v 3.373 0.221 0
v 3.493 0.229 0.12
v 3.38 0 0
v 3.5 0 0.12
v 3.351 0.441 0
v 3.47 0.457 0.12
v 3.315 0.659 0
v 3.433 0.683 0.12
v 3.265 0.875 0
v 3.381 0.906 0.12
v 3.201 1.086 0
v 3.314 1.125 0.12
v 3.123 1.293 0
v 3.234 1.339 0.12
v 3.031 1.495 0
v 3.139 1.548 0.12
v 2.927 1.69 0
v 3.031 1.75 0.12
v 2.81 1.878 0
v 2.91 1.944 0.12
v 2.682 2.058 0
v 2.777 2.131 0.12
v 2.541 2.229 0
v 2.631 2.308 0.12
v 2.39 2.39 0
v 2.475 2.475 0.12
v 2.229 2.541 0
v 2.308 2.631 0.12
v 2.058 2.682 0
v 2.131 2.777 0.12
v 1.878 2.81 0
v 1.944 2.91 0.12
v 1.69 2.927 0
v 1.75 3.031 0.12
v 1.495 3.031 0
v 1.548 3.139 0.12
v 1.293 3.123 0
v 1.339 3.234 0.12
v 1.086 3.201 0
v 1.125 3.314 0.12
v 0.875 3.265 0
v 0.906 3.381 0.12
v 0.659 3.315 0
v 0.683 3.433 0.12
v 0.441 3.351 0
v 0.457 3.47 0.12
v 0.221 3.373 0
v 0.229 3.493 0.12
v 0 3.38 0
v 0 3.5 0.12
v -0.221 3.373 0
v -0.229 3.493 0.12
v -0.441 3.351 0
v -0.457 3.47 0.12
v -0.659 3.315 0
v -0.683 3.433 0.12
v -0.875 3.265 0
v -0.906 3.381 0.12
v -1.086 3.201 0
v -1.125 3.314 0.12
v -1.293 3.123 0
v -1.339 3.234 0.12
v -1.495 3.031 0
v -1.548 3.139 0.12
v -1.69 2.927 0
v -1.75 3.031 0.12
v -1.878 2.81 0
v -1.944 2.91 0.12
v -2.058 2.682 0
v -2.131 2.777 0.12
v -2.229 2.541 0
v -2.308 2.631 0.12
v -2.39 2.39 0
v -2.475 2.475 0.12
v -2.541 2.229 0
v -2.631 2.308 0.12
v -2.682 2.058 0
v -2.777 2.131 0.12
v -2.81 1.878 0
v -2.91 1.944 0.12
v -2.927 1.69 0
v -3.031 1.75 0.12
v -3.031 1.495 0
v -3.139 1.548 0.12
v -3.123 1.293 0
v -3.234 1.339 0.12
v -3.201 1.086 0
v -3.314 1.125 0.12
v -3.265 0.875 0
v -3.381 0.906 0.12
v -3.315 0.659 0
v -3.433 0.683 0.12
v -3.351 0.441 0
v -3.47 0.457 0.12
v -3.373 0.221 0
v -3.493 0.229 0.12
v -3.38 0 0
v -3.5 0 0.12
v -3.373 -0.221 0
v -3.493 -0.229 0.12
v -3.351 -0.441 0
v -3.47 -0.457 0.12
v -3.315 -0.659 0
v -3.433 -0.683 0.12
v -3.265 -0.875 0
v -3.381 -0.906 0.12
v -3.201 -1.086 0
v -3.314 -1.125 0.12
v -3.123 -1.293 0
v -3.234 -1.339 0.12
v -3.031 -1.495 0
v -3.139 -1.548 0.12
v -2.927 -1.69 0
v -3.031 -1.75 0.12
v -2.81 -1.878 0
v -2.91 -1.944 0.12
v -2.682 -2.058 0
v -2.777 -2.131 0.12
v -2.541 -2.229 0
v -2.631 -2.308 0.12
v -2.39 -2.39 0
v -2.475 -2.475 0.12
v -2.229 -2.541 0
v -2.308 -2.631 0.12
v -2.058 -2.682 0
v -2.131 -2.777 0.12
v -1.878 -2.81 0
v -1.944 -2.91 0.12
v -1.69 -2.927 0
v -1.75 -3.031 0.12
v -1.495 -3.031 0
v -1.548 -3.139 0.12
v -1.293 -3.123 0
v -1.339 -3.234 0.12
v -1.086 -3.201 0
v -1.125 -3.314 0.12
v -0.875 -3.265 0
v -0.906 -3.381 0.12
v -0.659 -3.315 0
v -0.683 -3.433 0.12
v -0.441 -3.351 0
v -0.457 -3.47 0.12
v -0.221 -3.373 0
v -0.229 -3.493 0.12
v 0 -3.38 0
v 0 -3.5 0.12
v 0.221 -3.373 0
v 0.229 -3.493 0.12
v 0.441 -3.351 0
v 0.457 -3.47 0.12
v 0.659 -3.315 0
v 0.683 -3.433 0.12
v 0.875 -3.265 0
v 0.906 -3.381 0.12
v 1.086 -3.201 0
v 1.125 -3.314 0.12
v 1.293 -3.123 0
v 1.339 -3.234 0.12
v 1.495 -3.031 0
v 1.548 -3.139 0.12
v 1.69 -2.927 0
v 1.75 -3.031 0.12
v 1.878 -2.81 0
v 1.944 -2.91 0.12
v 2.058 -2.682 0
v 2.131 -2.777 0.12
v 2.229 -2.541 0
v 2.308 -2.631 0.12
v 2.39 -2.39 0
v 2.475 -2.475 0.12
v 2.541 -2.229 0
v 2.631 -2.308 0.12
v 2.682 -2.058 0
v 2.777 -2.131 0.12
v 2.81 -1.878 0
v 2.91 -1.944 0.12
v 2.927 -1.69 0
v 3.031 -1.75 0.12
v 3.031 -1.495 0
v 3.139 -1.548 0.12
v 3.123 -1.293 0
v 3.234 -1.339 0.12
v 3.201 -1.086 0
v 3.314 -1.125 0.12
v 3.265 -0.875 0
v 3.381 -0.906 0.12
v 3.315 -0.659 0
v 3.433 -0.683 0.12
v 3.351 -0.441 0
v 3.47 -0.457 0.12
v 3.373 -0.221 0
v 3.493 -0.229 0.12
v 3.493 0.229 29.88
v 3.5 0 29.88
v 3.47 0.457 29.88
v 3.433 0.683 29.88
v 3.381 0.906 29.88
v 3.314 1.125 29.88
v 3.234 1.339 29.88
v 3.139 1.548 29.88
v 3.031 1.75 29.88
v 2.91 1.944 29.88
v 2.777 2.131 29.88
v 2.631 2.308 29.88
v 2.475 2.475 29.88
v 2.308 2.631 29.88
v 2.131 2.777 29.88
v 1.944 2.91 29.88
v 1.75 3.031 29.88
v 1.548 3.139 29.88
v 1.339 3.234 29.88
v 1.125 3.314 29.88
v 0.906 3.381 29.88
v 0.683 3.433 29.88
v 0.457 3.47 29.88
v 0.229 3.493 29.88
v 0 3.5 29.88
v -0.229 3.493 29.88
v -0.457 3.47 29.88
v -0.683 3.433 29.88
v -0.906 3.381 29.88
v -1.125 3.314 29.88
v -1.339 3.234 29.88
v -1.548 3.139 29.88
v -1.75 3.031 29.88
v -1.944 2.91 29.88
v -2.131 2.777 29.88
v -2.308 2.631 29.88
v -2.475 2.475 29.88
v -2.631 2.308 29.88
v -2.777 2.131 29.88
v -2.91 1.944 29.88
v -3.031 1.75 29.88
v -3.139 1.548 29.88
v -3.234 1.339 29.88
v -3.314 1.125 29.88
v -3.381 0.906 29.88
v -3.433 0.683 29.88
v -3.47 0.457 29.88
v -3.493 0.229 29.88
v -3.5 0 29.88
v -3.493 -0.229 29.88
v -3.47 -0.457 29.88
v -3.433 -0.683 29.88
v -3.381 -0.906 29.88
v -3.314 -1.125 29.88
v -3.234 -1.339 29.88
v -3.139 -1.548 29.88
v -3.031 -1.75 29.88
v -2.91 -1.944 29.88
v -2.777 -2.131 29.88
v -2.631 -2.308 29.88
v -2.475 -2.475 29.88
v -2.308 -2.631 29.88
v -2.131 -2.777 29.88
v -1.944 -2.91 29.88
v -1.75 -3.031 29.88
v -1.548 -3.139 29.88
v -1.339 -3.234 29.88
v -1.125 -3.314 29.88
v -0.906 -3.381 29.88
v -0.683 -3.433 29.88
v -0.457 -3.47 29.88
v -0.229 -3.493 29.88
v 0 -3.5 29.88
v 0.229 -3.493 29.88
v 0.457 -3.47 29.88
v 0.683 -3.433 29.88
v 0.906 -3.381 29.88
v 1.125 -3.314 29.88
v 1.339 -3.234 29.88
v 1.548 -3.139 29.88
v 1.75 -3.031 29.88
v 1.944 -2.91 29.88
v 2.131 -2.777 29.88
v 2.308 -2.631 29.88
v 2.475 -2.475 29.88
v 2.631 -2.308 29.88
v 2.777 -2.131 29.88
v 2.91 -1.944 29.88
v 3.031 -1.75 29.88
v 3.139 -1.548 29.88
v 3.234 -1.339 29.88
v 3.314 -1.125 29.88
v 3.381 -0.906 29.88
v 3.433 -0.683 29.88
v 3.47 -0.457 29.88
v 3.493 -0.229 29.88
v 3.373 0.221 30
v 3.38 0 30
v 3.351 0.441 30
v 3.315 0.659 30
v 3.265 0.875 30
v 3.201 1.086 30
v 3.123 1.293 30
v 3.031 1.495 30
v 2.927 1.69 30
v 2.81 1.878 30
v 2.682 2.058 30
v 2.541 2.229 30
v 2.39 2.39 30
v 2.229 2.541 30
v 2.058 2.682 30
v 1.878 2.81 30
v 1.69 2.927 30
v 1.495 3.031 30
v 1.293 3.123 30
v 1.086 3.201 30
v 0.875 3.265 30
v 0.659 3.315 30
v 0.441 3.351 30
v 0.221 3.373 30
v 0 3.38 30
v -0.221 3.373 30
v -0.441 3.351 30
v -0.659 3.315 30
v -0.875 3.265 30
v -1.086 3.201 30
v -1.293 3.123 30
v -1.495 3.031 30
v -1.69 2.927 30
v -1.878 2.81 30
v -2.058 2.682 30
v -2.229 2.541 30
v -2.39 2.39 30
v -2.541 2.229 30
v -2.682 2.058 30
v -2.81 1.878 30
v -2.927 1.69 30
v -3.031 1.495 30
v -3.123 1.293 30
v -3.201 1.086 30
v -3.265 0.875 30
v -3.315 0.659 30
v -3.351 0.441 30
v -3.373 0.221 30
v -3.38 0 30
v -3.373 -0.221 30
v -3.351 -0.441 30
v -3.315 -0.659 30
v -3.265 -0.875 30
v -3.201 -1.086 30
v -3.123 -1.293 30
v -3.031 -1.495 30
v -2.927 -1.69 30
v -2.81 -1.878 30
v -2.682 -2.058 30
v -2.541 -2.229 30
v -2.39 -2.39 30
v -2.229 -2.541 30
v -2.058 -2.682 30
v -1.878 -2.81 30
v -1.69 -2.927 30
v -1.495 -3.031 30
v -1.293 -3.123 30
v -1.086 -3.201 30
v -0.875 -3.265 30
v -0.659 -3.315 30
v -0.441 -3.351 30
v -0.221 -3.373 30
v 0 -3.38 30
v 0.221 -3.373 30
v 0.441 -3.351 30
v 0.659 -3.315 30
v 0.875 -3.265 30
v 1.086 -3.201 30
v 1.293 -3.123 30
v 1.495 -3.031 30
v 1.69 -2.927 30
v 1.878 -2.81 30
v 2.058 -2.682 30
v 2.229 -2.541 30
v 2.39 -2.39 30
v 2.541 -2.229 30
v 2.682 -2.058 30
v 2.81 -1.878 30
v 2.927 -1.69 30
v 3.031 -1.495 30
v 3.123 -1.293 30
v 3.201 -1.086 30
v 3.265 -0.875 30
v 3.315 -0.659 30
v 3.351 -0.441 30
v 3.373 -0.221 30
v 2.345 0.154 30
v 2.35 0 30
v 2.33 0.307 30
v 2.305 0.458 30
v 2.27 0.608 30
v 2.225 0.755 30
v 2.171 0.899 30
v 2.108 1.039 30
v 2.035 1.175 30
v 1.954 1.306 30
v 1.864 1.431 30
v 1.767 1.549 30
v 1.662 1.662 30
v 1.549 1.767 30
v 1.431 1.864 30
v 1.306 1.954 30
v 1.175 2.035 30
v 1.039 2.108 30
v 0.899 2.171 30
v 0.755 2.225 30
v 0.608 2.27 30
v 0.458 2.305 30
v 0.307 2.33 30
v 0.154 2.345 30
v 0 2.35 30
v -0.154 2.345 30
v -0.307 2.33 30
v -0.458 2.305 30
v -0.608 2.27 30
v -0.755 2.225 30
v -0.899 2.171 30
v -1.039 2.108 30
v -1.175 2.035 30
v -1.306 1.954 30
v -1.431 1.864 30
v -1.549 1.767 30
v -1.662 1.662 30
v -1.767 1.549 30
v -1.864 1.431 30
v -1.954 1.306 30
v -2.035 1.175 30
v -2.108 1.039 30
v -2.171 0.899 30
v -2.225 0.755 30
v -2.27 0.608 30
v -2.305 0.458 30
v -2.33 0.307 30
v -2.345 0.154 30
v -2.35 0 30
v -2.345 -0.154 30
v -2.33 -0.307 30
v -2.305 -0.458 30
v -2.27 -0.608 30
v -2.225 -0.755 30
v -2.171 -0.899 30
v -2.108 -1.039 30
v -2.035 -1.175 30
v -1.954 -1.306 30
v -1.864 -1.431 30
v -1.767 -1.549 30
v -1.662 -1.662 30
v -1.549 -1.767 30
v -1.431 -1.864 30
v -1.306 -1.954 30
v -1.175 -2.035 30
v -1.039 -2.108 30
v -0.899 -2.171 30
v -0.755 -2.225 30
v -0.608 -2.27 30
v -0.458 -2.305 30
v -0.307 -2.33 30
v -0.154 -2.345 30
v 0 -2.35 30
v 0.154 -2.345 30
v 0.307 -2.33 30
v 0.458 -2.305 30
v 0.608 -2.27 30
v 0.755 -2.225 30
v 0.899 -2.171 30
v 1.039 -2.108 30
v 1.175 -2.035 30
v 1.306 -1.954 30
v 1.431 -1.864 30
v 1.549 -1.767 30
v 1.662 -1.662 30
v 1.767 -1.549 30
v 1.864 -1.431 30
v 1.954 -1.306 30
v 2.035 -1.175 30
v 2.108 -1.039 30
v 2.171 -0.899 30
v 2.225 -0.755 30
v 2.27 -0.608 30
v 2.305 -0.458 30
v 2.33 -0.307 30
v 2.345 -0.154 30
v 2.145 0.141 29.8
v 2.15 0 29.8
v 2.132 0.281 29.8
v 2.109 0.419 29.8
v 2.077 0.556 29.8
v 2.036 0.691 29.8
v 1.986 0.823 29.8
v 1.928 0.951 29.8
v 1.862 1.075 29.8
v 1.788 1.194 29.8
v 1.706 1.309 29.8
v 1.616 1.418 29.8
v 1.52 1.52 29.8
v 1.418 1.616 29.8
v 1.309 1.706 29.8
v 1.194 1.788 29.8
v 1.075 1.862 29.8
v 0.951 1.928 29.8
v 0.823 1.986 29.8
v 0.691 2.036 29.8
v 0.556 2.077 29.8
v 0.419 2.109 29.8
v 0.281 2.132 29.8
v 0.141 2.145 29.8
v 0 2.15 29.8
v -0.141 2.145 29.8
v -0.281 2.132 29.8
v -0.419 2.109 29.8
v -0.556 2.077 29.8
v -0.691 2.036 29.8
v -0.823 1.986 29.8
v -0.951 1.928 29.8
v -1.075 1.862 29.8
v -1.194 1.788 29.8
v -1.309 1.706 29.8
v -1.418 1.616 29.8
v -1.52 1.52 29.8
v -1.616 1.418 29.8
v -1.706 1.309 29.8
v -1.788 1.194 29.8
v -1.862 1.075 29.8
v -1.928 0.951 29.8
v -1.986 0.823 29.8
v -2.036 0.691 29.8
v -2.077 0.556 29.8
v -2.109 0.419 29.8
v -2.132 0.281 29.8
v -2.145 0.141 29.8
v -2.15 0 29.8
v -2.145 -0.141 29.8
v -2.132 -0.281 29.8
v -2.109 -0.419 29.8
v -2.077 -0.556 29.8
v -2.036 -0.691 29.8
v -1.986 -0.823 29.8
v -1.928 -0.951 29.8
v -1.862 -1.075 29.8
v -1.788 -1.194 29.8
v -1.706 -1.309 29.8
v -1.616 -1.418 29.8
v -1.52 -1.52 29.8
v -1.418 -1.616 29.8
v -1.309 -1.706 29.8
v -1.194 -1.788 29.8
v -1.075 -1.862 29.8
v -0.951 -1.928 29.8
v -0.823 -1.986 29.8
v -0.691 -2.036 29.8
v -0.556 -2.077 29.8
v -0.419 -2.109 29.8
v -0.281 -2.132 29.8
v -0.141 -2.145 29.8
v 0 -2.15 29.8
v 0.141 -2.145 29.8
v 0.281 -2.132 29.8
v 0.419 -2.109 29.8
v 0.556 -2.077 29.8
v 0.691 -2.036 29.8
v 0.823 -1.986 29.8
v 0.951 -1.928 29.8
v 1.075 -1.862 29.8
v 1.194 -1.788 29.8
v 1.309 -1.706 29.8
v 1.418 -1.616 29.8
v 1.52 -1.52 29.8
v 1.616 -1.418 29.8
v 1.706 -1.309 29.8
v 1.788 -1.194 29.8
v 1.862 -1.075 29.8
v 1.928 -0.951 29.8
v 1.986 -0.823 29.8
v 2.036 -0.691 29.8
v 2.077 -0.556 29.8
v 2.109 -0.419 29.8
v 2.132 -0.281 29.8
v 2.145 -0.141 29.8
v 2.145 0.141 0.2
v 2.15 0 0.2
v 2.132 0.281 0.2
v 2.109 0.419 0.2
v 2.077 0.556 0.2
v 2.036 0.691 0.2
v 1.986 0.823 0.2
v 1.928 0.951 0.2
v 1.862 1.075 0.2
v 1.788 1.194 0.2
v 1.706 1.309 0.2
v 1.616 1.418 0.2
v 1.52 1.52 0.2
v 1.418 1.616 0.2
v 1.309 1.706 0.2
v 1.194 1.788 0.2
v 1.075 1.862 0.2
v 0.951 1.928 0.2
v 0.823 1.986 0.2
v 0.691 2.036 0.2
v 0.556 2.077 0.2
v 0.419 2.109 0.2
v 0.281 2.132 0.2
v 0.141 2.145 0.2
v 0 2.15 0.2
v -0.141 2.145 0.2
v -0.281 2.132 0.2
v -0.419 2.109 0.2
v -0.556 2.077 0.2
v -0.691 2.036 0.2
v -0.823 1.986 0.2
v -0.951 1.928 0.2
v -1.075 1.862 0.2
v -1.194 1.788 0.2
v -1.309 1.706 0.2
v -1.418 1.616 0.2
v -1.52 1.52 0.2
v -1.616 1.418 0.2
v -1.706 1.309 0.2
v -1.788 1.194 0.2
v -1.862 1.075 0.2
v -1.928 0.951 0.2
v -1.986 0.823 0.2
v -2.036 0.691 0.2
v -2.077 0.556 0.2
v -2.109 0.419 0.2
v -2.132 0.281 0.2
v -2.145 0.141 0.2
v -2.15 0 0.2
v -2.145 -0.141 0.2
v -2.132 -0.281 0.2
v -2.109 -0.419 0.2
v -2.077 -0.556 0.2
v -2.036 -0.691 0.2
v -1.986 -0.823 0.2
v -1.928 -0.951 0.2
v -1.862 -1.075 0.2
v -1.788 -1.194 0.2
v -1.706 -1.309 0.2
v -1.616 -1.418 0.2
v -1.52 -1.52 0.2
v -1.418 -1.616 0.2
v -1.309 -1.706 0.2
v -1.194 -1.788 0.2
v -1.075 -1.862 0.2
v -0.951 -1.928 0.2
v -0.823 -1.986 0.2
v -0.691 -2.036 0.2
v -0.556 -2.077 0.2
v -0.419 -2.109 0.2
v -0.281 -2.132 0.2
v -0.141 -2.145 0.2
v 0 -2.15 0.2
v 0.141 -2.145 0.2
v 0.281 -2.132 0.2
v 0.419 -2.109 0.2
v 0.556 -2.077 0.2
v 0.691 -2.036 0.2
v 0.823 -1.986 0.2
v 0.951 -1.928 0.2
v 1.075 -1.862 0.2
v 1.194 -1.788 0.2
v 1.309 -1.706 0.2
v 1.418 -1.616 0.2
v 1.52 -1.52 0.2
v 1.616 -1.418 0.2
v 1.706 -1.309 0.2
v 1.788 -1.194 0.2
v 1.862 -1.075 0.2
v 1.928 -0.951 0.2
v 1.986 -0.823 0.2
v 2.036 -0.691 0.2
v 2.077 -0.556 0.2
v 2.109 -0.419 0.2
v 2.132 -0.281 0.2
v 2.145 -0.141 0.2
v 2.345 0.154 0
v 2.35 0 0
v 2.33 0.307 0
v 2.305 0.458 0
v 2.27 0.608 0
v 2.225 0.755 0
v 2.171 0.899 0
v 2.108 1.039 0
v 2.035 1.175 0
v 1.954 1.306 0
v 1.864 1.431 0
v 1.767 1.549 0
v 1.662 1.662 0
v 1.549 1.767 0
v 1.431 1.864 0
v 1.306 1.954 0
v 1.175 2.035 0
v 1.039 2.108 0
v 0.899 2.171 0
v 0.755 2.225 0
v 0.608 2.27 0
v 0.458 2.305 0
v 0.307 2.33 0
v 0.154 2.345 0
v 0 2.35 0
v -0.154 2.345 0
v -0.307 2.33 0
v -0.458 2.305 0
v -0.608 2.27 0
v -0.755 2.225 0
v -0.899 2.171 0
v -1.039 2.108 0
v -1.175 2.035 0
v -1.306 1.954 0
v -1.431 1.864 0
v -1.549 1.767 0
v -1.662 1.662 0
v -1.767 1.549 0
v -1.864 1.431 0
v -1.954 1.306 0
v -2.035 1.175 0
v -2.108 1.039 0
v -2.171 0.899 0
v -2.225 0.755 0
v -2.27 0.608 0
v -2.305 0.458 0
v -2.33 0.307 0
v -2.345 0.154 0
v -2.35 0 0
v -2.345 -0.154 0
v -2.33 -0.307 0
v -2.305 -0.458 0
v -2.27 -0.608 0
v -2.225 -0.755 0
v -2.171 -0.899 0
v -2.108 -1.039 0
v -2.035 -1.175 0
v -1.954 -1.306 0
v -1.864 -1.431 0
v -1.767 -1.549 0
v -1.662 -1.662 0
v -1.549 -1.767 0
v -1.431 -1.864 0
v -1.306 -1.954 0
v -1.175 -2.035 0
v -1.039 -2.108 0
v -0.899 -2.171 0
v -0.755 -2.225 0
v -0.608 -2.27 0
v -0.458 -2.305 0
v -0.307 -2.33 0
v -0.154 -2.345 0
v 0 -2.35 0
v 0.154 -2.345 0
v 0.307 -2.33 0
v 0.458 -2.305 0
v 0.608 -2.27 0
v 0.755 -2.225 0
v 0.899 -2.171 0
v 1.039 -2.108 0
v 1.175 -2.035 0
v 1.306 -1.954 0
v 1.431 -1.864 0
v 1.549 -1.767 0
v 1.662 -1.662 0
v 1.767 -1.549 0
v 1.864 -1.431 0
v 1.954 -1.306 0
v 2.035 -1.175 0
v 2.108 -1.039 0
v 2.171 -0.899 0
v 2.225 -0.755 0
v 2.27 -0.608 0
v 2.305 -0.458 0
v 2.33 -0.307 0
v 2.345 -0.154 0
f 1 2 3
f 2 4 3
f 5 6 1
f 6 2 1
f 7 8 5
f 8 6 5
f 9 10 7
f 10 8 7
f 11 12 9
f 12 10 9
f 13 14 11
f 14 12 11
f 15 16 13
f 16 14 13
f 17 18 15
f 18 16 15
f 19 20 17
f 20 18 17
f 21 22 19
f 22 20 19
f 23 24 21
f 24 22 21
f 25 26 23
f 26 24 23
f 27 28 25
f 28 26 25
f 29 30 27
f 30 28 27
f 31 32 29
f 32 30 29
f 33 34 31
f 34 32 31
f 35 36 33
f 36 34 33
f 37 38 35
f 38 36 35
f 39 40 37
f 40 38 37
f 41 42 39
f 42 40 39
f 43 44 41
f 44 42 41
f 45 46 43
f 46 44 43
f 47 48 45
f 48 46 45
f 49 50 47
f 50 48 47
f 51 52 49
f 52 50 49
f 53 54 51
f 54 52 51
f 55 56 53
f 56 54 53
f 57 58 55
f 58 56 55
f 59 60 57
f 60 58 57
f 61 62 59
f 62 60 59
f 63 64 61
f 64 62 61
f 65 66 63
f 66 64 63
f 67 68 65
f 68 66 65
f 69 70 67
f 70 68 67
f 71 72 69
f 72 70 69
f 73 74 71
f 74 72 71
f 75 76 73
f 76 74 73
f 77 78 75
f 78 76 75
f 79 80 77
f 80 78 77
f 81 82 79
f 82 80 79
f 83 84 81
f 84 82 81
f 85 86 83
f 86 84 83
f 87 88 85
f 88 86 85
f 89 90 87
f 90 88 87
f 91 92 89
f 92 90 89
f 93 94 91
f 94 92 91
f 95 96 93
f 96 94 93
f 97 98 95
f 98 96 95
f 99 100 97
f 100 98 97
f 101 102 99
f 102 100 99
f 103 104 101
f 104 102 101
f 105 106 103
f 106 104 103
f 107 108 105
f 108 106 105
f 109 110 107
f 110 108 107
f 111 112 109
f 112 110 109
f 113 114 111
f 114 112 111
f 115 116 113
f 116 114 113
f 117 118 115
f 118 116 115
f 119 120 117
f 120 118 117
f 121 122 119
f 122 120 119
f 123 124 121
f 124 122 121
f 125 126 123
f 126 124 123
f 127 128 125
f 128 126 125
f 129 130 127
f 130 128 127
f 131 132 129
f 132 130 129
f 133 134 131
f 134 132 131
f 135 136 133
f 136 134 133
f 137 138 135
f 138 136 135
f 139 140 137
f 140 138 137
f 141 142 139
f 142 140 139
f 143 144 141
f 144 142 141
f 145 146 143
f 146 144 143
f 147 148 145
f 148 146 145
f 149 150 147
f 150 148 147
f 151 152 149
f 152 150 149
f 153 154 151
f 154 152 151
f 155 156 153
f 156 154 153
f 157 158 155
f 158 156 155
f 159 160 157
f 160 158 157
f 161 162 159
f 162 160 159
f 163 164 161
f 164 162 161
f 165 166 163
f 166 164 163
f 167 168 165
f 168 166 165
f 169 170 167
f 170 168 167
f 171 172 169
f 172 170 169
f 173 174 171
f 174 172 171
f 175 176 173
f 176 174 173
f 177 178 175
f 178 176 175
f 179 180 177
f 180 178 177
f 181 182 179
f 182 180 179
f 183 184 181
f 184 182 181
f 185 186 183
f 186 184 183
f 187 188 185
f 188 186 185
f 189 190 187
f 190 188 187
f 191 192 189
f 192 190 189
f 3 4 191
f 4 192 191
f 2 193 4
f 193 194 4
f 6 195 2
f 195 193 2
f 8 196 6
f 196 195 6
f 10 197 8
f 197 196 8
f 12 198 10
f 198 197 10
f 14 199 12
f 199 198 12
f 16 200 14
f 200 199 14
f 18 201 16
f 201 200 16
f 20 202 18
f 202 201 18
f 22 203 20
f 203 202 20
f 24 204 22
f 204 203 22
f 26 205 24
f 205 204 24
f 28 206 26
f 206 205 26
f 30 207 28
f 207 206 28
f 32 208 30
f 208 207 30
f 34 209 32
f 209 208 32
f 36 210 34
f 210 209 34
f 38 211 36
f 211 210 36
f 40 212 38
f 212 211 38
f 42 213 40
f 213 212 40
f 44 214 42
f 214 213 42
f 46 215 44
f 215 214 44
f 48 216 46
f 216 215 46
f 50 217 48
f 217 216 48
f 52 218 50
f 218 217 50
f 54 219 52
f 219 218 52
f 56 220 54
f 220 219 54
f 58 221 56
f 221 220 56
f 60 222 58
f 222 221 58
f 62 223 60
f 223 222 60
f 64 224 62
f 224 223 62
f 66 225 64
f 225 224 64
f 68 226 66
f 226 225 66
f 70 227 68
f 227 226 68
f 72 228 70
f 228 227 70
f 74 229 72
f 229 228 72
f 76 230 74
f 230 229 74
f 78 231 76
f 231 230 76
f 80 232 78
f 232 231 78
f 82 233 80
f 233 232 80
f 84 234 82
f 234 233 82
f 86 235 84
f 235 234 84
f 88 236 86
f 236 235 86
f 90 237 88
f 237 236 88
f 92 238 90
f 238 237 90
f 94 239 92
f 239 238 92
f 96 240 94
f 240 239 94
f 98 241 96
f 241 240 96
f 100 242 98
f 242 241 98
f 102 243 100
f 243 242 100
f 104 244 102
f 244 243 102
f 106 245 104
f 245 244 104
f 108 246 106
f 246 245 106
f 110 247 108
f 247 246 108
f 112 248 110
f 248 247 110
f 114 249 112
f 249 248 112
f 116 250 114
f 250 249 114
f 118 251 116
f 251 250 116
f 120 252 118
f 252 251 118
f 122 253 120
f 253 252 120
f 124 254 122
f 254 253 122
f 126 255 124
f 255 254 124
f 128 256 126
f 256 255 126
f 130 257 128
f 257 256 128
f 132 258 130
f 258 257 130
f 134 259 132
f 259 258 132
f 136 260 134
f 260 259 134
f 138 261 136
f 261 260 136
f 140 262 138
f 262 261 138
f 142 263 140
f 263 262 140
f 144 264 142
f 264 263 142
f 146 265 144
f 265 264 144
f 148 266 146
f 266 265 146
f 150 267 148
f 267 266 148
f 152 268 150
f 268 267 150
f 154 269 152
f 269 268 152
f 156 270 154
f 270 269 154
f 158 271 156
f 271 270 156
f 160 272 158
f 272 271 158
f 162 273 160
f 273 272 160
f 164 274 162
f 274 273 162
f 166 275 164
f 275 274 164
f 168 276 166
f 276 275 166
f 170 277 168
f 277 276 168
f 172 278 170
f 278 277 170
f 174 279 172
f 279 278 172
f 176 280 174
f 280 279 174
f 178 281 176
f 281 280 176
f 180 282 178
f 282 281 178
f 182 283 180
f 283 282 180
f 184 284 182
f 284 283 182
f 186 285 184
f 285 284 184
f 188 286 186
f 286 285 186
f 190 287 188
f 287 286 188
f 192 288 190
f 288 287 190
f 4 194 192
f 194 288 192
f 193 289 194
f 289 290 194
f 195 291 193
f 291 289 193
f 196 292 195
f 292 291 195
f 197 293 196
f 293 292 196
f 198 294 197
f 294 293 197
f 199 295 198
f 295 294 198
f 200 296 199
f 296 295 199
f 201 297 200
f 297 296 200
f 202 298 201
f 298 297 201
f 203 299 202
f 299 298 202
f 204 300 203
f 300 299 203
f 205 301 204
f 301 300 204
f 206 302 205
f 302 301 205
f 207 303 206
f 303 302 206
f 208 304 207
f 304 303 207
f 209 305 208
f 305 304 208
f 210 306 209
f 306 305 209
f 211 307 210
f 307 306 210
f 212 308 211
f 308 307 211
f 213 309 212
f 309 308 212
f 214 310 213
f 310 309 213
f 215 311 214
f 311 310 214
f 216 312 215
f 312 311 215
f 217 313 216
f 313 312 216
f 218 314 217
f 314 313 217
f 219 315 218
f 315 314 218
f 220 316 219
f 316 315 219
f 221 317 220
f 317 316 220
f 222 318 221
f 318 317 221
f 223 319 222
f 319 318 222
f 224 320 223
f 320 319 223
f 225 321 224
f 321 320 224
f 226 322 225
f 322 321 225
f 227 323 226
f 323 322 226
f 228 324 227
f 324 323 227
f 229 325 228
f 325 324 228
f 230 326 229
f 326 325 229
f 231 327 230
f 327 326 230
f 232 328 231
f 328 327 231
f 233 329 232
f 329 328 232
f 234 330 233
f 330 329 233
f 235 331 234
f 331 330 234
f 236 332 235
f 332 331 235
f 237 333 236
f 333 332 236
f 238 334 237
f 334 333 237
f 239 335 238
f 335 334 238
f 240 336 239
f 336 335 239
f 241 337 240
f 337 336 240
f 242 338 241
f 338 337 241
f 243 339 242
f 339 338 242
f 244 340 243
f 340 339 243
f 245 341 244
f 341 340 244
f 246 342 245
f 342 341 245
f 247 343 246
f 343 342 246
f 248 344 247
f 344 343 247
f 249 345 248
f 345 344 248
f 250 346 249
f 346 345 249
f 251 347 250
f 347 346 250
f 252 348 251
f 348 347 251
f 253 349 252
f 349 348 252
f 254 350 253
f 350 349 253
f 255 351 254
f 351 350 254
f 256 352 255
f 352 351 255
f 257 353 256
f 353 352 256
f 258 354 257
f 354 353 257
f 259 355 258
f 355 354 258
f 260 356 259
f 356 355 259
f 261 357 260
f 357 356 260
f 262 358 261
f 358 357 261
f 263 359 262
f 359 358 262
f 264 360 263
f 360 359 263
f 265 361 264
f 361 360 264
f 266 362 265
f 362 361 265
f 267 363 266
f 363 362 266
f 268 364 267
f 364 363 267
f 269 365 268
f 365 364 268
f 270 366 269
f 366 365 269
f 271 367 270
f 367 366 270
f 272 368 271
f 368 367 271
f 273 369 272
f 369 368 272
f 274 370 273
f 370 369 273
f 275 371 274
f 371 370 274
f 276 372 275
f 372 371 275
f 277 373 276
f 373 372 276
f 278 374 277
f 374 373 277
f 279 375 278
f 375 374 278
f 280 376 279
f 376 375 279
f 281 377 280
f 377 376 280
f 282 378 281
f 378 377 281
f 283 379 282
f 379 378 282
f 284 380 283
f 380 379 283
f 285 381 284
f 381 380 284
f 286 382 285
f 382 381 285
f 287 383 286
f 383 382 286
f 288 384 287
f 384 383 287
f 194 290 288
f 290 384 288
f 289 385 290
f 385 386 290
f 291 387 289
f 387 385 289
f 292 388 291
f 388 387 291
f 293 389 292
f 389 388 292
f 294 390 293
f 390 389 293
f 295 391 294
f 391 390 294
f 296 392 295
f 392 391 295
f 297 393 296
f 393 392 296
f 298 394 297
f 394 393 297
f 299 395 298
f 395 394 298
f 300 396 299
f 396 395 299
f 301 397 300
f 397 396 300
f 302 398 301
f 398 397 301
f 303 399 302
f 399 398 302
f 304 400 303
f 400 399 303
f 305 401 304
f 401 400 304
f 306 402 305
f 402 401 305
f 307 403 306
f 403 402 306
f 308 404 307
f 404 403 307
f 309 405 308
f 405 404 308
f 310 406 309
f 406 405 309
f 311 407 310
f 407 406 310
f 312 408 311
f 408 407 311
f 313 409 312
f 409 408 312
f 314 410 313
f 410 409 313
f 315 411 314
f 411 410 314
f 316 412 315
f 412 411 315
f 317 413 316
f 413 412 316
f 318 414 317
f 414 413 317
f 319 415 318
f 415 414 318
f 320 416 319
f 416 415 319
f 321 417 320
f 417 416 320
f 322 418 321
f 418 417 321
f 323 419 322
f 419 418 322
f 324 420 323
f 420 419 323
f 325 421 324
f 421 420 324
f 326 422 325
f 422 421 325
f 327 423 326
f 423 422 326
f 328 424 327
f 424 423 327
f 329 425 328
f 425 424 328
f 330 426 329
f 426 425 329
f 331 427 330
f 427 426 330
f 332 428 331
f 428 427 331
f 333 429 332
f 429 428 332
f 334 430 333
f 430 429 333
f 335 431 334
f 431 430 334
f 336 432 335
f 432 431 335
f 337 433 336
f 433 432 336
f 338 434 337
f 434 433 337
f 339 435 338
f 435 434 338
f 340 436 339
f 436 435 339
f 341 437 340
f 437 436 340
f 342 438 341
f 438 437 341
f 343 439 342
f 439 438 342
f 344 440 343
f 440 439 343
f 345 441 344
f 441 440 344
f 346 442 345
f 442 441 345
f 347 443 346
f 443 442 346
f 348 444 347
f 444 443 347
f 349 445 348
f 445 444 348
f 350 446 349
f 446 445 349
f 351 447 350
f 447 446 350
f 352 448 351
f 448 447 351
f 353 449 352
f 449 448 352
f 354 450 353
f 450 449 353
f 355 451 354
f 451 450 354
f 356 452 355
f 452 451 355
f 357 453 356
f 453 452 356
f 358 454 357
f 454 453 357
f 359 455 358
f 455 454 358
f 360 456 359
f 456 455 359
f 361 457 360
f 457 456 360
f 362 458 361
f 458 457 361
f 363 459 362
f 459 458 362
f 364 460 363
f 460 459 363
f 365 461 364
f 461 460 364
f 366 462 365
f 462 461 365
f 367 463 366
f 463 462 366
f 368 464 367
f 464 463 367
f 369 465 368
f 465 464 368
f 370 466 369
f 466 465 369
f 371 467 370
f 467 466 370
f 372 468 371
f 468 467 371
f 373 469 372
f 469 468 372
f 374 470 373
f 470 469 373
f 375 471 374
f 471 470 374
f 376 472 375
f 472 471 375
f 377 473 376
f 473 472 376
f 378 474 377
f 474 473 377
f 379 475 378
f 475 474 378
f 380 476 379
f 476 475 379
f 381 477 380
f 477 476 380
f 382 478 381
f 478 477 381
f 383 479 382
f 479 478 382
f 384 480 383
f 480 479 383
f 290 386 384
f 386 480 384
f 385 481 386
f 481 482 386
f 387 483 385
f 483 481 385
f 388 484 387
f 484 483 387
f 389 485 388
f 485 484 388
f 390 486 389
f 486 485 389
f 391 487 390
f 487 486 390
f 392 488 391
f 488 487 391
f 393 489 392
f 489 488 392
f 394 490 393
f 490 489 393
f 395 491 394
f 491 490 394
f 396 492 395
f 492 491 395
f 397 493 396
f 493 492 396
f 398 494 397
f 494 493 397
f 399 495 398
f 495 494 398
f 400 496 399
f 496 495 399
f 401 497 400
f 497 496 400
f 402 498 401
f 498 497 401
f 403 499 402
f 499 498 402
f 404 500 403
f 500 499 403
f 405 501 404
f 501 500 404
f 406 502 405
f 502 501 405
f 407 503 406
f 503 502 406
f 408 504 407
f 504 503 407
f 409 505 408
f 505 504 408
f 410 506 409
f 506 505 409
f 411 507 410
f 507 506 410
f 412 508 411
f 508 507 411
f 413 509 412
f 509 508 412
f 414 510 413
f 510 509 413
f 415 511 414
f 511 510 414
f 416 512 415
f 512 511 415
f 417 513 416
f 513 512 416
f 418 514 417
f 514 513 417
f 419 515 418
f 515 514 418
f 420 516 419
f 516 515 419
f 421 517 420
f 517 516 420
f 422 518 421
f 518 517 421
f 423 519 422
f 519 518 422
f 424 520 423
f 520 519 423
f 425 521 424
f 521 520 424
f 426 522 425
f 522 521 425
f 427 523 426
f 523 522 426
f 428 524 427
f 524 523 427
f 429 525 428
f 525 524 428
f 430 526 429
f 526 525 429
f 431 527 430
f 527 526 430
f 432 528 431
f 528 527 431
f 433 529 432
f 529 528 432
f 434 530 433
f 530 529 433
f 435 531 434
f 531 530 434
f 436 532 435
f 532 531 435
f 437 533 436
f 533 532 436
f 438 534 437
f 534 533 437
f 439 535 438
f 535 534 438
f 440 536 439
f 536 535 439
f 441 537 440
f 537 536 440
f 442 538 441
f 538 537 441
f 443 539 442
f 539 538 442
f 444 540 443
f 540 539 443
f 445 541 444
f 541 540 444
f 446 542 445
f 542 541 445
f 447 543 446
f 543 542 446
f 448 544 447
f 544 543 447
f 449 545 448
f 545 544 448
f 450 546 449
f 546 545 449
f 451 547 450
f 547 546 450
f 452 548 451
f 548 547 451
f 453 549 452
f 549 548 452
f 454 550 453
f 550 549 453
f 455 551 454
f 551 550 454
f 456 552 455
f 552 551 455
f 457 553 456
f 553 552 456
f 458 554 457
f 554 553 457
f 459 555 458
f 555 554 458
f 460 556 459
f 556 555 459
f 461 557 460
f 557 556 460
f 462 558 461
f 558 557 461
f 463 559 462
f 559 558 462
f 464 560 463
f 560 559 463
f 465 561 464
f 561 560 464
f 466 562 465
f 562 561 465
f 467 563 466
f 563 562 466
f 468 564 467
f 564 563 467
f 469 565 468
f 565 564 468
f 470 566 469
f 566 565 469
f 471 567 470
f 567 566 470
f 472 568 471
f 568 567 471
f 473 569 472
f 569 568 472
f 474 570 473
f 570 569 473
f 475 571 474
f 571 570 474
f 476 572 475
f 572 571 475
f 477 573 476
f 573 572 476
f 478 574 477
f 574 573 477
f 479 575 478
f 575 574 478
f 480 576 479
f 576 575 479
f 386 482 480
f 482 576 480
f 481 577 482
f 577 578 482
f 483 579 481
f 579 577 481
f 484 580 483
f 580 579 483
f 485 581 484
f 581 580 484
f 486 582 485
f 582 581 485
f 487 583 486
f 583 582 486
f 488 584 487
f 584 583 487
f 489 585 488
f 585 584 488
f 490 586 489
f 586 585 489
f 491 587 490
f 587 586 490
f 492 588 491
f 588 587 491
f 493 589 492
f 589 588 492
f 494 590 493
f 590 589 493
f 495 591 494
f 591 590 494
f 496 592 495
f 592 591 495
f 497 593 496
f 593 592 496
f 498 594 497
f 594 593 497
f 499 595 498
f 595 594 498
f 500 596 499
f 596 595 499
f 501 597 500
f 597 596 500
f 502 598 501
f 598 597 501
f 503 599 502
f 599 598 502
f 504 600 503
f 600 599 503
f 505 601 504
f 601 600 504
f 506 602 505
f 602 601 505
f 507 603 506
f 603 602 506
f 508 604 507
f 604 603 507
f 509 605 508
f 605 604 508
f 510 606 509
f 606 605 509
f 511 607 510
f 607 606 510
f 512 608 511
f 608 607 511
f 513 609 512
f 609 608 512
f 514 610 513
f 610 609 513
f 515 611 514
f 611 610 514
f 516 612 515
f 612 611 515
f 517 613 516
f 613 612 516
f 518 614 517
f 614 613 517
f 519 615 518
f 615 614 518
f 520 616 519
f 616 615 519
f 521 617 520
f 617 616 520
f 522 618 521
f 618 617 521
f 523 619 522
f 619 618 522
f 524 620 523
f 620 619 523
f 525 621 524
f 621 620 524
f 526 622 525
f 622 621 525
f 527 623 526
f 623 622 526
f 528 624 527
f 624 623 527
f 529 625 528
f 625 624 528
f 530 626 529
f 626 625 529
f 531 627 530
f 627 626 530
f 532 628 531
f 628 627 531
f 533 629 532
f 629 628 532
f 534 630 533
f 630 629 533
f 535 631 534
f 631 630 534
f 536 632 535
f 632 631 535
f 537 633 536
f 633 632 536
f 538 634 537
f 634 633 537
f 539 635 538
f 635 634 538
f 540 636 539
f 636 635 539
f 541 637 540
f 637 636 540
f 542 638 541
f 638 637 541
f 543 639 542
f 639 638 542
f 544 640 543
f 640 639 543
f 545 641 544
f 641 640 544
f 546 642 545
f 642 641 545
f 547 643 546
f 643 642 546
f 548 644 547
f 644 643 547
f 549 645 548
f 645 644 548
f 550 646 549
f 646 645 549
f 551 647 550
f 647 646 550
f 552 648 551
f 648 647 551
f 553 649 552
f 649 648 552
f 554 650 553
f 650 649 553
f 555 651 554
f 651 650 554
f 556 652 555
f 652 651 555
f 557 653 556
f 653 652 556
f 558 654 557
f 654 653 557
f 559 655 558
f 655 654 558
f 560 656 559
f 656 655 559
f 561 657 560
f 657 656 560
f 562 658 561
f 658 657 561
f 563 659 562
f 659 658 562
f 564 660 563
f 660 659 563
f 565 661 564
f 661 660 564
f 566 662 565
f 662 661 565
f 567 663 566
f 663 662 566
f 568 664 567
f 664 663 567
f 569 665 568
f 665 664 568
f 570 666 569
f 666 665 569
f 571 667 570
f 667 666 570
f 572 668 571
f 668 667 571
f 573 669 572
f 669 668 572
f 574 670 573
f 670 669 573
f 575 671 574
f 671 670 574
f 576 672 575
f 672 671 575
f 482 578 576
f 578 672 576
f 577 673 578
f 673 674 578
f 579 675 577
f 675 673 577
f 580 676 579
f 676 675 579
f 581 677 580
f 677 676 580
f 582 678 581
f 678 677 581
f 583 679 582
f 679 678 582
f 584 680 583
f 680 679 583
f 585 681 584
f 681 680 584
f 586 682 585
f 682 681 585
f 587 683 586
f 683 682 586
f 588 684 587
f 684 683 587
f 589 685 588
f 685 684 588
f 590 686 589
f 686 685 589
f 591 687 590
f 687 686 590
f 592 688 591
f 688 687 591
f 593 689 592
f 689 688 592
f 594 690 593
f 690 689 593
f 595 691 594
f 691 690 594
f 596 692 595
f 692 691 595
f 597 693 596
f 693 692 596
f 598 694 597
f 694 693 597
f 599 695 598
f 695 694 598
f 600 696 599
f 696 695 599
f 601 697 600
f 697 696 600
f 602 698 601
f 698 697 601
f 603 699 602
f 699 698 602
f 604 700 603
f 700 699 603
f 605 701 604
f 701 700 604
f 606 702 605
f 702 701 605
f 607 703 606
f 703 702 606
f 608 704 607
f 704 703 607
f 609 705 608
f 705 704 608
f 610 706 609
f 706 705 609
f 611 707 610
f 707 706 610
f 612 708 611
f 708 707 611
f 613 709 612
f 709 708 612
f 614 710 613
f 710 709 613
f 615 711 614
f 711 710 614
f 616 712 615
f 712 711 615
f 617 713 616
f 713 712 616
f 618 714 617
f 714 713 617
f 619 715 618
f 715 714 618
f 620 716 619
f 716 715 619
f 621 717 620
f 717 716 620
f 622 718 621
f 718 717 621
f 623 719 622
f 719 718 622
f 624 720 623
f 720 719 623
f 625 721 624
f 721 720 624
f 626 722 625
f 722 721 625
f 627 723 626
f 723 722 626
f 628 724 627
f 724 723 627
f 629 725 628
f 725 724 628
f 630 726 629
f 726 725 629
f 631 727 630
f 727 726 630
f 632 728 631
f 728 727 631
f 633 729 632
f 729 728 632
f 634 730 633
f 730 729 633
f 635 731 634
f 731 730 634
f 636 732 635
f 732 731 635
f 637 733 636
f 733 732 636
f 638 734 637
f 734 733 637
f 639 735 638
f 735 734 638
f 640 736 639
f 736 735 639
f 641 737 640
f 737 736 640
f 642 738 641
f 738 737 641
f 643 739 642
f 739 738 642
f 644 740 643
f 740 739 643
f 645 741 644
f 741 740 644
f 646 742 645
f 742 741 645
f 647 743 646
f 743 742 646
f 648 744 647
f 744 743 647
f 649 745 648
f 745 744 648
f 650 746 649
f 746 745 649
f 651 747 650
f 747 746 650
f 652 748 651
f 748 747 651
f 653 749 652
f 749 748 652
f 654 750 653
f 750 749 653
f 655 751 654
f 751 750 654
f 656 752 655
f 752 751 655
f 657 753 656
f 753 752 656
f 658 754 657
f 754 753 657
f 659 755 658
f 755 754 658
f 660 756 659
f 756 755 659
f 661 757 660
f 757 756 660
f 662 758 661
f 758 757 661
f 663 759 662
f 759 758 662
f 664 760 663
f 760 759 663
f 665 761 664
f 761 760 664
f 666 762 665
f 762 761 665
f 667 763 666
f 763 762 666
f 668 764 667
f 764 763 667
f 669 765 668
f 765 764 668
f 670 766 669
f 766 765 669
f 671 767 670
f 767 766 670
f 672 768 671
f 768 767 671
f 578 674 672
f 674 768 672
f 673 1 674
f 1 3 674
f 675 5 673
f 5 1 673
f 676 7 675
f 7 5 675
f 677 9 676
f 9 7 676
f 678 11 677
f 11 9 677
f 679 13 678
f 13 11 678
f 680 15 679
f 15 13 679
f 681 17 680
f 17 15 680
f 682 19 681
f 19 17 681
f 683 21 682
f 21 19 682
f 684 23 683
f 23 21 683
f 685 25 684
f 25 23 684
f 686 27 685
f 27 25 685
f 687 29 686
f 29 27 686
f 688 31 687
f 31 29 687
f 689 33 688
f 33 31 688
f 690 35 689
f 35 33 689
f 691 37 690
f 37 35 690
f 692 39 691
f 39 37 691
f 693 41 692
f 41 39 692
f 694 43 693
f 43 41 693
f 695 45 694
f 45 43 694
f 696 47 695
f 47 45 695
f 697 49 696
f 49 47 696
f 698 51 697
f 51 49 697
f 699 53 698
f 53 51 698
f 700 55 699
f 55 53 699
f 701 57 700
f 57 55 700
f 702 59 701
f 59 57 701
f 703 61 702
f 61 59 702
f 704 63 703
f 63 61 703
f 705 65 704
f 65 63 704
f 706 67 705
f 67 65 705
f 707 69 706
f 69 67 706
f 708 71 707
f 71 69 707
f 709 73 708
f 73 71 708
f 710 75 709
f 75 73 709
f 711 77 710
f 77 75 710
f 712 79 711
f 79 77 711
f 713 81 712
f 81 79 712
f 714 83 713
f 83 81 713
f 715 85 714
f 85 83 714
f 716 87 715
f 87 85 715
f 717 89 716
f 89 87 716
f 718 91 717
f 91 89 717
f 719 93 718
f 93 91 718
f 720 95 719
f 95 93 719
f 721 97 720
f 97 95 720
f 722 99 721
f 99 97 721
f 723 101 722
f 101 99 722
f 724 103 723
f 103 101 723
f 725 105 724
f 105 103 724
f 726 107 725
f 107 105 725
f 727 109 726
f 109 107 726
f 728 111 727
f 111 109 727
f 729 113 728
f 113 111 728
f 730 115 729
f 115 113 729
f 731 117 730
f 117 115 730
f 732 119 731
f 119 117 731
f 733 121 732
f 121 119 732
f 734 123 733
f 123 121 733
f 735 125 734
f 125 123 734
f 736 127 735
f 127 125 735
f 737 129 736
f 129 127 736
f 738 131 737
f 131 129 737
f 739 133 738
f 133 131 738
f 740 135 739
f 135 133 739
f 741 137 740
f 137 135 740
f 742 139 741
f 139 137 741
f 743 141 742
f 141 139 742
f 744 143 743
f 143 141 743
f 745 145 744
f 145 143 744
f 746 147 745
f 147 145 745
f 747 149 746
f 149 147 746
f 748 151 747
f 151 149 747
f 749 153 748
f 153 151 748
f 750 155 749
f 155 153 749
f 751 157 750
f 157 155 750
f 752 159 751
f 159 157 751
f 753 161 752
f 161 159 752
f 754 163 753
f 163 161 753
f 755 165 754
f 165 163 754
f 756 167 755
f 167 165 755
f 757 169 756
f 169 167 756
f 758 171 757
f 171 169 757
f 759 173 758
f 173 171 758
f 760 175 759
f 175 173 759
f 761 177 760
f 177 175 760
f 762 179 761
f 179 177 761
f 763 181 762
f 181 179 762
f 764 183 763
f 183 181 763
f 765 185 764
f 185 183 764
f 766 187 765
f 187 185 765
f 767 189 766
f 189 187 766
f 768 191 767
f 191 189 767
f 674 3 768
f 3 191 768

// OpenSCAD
// OOMP generic catalogue model; units: mm.
// Stud length is additional to body depth. Tapping depths are model assumptions.
variant = "full"; // [full, display]
family = "spacer";
connection_type = "plain";
depth_mm = 30;
stud_length_mm = 0;
tapped_depth_mm = 0;
bore_mm = 4.3;
outer_diameter_mm = 7;
across_flats_mm = 6;
thread_nominal_diameter_mm = 3;
thread_pitch_mm = 0.5;
edge_chamfer_mm = 0.12;
mouth_chamfer_mm = 0.2;
angular_segments = 96;
samples_per_pitch = 16;

// Boundary travels up the outside, then down any tapped/plain bore.
// Equal-height rings at shoulders form the annular shoulder faces.
n = angular_segments;
threaded = family == "standoff";
has_stud = connection_type == "stud_to_tapped" || connection_type == "stud_to_stud";
two_studs = connection_type == "stud_to_stud";
through = !threaded || connection_type == "tapped_to_tapped";
pitch = thread_pitch_mm;
diameter = threaded ? thread_nominal_diameter_mm : bore_mm;
minor = diameter - 5*sqrt(3)*pitch/8;
transition = mouth_chamfer_mm + (threaded ? 5*sqrt(3)*pitch/16 : 0);
tip_chamfer = mouth_chamfer_mm + 17*sqrt(3)*pitch/48;
function sorted(v) = len(v)<=1 ? v : let(p=v[0])
    concat(sorted([for(x=v) if(x<p-1e-8) x]), [p], sorted([for(x=v) if(x>p+1e-8) x]));
function reverse(v) = [for(i=[len(v)-1:-1:0]) v[i]];
function theta(i) = i*360/n;
function fract(x) = x-floor(x);
function phase_distance(i,z) = abs(fract(z/pitch-theta(i)/360+0.5)-0.5);
function thread_r(i,z) = minor/2 + min(5*sqrt(3)*pitch/16,
    max(0,(phase_distance(i,z)-0.125)*pitch*sqrt(3)));
function stud_r(i,z,tip) = min(diameter/2 - (variant=="full" ?
    min(17*sqrt(3)*pitch/48,max(0,(phase_distance(i,z)-0.0625)*pitch*sqrt(3))) : 0),
    diameter/2-tip_chamfer+abs(z-tip));
function body_r(i,z) = (threaded ? across_flats_mm/2/cos(theta(i)%60-30) : outer_diameter_mm/2)
    - max(0,edge_chamfer_mm-min(z,depth_mm-z));
function bore_r(i,z) = max(threaded ? (variant=="full" ? thread_r(i,z) : minor/2) : diameter/2,
    diameter/2+mouth_chamfer_mm-(through ? min(z,depth_mm-z) : depth_mm-z));
function stud_z(a,b,tip) = let(count=variant=="full" ? ceil(stud_length_mm/pitch*samples_per_pitch) : 1)
    sorted(concat([for(i=[0:count]) a+(b-a)*i/count], [tip==a ? tip+tip_chamfer : tip-tip_chamfer]));
body_z = sorted([0,edge_chamfer_mm,depth_mm-edge_chamfer_mm,depth_mm]);
low = through ? 0 : depth_mm-tapped_depth_mm;
count = threaded && variant=="full" ? ceil((depth_mm-low)/pitch*samples_per_pitch) : 1;
bore_z = two_studs ? [] : reverse(sorted(concat(
    [for(i=[0:count]) low+(depth_mm-low)*i/count],
    [depth_mm-mouth_chamfer_mm,depth_mm-transition],
    through ? [mouth_chamfer_mm,transition] : [])));
// Ring descriptors: [height, kind, tip]. Kind: 0 body, 1 stud, 2 bore.
rings = concat(
    has_stud ? [for(z=stud_z(-stud_length_mm,0,-stud_length_mm)) [z,1,-stud_length_mm]] : [],
    [for(z=body_z) [z,0,0]],
    two_studs ? [for(z=stud_z(depth_mm,depth_mm+stud_length_mm,depth_mm+stud_length_mm)) [z,1,depth_mm+stud_length_mm]] : [],
    [for(z=bore_z) [z,2,0]]);
function radius(i,ring) = ring[1]==0 ? body_r(i,ring[0]) :
    ring[1]==1 ? stud_r(i,ring[0],ring[2]) : bore_r(i,ring[0]);
points = concat([for(ring=rings) for(i=[0:n-1])
    [radius(i,ring)*cos(theta(i)),radius(i,ring)*sin(theta(i)),ring[0]]],
    through ? [] : [[0,0,rings[0][0]],[0,0,rings[len(rings)-1][0]]]);
center = len(rings)*n;
last = (len(rings)-1)*n;
// OpenSCAD winding is opposite to STL winding.
faces = concat(
    [for(j=[0:len(rings)-(through ? 1 : 2)]) for(i=[0:n-1]) each
        let(a=j*n+i,b=j*n+(i+1)%n,c=((j+1)%len(rings))*n+(i+1)%n,d=((j+1)%len(rings))*n+i)
        [[a,c,b],[a,d,c]]],
    through ? [] : [for(i=[0:n-1]) each let(k=(i+1)%n)
        [[center,i,k],[center+1,last+k,last+i]]]);
assert(family=="spacer" || family=="standoff");
assert(!threaded || connection_type=="tapped_to_tapped" || has_stud);
assert(depth_mm>0 && diameter>0 && pitch>0);
assert(variant=="full" || variant=="display");
assert(n>=24 && n%12==0 && samples_per_pitch>=8);
assert(mouth_chamfer_mm>0 && mouth_chamfer_mm<depth_mm/2);
assert(edge_chamfer_mm>=0 && edge_chamfer_mm<depth_mm/2);
assert(diameter+4*max(mouth_chamfer_mm,edge_chamfer_mm) < (threaded ? across_flats_mm : outer_diameter_mm));
assert(!has_stud || stud_length_mm>2*mouth_chamfer_mm);
assert(!through || !threaded || 2*transition<depth_mm);
assert(connection_type!="stud_to_tapped" || (tapped_depth_mm>transition && tapped_depth_mm<depth_mm));
color([0.86,0.85,0.81]) polyhedron(points=points,faces=faces,convexity=20);
